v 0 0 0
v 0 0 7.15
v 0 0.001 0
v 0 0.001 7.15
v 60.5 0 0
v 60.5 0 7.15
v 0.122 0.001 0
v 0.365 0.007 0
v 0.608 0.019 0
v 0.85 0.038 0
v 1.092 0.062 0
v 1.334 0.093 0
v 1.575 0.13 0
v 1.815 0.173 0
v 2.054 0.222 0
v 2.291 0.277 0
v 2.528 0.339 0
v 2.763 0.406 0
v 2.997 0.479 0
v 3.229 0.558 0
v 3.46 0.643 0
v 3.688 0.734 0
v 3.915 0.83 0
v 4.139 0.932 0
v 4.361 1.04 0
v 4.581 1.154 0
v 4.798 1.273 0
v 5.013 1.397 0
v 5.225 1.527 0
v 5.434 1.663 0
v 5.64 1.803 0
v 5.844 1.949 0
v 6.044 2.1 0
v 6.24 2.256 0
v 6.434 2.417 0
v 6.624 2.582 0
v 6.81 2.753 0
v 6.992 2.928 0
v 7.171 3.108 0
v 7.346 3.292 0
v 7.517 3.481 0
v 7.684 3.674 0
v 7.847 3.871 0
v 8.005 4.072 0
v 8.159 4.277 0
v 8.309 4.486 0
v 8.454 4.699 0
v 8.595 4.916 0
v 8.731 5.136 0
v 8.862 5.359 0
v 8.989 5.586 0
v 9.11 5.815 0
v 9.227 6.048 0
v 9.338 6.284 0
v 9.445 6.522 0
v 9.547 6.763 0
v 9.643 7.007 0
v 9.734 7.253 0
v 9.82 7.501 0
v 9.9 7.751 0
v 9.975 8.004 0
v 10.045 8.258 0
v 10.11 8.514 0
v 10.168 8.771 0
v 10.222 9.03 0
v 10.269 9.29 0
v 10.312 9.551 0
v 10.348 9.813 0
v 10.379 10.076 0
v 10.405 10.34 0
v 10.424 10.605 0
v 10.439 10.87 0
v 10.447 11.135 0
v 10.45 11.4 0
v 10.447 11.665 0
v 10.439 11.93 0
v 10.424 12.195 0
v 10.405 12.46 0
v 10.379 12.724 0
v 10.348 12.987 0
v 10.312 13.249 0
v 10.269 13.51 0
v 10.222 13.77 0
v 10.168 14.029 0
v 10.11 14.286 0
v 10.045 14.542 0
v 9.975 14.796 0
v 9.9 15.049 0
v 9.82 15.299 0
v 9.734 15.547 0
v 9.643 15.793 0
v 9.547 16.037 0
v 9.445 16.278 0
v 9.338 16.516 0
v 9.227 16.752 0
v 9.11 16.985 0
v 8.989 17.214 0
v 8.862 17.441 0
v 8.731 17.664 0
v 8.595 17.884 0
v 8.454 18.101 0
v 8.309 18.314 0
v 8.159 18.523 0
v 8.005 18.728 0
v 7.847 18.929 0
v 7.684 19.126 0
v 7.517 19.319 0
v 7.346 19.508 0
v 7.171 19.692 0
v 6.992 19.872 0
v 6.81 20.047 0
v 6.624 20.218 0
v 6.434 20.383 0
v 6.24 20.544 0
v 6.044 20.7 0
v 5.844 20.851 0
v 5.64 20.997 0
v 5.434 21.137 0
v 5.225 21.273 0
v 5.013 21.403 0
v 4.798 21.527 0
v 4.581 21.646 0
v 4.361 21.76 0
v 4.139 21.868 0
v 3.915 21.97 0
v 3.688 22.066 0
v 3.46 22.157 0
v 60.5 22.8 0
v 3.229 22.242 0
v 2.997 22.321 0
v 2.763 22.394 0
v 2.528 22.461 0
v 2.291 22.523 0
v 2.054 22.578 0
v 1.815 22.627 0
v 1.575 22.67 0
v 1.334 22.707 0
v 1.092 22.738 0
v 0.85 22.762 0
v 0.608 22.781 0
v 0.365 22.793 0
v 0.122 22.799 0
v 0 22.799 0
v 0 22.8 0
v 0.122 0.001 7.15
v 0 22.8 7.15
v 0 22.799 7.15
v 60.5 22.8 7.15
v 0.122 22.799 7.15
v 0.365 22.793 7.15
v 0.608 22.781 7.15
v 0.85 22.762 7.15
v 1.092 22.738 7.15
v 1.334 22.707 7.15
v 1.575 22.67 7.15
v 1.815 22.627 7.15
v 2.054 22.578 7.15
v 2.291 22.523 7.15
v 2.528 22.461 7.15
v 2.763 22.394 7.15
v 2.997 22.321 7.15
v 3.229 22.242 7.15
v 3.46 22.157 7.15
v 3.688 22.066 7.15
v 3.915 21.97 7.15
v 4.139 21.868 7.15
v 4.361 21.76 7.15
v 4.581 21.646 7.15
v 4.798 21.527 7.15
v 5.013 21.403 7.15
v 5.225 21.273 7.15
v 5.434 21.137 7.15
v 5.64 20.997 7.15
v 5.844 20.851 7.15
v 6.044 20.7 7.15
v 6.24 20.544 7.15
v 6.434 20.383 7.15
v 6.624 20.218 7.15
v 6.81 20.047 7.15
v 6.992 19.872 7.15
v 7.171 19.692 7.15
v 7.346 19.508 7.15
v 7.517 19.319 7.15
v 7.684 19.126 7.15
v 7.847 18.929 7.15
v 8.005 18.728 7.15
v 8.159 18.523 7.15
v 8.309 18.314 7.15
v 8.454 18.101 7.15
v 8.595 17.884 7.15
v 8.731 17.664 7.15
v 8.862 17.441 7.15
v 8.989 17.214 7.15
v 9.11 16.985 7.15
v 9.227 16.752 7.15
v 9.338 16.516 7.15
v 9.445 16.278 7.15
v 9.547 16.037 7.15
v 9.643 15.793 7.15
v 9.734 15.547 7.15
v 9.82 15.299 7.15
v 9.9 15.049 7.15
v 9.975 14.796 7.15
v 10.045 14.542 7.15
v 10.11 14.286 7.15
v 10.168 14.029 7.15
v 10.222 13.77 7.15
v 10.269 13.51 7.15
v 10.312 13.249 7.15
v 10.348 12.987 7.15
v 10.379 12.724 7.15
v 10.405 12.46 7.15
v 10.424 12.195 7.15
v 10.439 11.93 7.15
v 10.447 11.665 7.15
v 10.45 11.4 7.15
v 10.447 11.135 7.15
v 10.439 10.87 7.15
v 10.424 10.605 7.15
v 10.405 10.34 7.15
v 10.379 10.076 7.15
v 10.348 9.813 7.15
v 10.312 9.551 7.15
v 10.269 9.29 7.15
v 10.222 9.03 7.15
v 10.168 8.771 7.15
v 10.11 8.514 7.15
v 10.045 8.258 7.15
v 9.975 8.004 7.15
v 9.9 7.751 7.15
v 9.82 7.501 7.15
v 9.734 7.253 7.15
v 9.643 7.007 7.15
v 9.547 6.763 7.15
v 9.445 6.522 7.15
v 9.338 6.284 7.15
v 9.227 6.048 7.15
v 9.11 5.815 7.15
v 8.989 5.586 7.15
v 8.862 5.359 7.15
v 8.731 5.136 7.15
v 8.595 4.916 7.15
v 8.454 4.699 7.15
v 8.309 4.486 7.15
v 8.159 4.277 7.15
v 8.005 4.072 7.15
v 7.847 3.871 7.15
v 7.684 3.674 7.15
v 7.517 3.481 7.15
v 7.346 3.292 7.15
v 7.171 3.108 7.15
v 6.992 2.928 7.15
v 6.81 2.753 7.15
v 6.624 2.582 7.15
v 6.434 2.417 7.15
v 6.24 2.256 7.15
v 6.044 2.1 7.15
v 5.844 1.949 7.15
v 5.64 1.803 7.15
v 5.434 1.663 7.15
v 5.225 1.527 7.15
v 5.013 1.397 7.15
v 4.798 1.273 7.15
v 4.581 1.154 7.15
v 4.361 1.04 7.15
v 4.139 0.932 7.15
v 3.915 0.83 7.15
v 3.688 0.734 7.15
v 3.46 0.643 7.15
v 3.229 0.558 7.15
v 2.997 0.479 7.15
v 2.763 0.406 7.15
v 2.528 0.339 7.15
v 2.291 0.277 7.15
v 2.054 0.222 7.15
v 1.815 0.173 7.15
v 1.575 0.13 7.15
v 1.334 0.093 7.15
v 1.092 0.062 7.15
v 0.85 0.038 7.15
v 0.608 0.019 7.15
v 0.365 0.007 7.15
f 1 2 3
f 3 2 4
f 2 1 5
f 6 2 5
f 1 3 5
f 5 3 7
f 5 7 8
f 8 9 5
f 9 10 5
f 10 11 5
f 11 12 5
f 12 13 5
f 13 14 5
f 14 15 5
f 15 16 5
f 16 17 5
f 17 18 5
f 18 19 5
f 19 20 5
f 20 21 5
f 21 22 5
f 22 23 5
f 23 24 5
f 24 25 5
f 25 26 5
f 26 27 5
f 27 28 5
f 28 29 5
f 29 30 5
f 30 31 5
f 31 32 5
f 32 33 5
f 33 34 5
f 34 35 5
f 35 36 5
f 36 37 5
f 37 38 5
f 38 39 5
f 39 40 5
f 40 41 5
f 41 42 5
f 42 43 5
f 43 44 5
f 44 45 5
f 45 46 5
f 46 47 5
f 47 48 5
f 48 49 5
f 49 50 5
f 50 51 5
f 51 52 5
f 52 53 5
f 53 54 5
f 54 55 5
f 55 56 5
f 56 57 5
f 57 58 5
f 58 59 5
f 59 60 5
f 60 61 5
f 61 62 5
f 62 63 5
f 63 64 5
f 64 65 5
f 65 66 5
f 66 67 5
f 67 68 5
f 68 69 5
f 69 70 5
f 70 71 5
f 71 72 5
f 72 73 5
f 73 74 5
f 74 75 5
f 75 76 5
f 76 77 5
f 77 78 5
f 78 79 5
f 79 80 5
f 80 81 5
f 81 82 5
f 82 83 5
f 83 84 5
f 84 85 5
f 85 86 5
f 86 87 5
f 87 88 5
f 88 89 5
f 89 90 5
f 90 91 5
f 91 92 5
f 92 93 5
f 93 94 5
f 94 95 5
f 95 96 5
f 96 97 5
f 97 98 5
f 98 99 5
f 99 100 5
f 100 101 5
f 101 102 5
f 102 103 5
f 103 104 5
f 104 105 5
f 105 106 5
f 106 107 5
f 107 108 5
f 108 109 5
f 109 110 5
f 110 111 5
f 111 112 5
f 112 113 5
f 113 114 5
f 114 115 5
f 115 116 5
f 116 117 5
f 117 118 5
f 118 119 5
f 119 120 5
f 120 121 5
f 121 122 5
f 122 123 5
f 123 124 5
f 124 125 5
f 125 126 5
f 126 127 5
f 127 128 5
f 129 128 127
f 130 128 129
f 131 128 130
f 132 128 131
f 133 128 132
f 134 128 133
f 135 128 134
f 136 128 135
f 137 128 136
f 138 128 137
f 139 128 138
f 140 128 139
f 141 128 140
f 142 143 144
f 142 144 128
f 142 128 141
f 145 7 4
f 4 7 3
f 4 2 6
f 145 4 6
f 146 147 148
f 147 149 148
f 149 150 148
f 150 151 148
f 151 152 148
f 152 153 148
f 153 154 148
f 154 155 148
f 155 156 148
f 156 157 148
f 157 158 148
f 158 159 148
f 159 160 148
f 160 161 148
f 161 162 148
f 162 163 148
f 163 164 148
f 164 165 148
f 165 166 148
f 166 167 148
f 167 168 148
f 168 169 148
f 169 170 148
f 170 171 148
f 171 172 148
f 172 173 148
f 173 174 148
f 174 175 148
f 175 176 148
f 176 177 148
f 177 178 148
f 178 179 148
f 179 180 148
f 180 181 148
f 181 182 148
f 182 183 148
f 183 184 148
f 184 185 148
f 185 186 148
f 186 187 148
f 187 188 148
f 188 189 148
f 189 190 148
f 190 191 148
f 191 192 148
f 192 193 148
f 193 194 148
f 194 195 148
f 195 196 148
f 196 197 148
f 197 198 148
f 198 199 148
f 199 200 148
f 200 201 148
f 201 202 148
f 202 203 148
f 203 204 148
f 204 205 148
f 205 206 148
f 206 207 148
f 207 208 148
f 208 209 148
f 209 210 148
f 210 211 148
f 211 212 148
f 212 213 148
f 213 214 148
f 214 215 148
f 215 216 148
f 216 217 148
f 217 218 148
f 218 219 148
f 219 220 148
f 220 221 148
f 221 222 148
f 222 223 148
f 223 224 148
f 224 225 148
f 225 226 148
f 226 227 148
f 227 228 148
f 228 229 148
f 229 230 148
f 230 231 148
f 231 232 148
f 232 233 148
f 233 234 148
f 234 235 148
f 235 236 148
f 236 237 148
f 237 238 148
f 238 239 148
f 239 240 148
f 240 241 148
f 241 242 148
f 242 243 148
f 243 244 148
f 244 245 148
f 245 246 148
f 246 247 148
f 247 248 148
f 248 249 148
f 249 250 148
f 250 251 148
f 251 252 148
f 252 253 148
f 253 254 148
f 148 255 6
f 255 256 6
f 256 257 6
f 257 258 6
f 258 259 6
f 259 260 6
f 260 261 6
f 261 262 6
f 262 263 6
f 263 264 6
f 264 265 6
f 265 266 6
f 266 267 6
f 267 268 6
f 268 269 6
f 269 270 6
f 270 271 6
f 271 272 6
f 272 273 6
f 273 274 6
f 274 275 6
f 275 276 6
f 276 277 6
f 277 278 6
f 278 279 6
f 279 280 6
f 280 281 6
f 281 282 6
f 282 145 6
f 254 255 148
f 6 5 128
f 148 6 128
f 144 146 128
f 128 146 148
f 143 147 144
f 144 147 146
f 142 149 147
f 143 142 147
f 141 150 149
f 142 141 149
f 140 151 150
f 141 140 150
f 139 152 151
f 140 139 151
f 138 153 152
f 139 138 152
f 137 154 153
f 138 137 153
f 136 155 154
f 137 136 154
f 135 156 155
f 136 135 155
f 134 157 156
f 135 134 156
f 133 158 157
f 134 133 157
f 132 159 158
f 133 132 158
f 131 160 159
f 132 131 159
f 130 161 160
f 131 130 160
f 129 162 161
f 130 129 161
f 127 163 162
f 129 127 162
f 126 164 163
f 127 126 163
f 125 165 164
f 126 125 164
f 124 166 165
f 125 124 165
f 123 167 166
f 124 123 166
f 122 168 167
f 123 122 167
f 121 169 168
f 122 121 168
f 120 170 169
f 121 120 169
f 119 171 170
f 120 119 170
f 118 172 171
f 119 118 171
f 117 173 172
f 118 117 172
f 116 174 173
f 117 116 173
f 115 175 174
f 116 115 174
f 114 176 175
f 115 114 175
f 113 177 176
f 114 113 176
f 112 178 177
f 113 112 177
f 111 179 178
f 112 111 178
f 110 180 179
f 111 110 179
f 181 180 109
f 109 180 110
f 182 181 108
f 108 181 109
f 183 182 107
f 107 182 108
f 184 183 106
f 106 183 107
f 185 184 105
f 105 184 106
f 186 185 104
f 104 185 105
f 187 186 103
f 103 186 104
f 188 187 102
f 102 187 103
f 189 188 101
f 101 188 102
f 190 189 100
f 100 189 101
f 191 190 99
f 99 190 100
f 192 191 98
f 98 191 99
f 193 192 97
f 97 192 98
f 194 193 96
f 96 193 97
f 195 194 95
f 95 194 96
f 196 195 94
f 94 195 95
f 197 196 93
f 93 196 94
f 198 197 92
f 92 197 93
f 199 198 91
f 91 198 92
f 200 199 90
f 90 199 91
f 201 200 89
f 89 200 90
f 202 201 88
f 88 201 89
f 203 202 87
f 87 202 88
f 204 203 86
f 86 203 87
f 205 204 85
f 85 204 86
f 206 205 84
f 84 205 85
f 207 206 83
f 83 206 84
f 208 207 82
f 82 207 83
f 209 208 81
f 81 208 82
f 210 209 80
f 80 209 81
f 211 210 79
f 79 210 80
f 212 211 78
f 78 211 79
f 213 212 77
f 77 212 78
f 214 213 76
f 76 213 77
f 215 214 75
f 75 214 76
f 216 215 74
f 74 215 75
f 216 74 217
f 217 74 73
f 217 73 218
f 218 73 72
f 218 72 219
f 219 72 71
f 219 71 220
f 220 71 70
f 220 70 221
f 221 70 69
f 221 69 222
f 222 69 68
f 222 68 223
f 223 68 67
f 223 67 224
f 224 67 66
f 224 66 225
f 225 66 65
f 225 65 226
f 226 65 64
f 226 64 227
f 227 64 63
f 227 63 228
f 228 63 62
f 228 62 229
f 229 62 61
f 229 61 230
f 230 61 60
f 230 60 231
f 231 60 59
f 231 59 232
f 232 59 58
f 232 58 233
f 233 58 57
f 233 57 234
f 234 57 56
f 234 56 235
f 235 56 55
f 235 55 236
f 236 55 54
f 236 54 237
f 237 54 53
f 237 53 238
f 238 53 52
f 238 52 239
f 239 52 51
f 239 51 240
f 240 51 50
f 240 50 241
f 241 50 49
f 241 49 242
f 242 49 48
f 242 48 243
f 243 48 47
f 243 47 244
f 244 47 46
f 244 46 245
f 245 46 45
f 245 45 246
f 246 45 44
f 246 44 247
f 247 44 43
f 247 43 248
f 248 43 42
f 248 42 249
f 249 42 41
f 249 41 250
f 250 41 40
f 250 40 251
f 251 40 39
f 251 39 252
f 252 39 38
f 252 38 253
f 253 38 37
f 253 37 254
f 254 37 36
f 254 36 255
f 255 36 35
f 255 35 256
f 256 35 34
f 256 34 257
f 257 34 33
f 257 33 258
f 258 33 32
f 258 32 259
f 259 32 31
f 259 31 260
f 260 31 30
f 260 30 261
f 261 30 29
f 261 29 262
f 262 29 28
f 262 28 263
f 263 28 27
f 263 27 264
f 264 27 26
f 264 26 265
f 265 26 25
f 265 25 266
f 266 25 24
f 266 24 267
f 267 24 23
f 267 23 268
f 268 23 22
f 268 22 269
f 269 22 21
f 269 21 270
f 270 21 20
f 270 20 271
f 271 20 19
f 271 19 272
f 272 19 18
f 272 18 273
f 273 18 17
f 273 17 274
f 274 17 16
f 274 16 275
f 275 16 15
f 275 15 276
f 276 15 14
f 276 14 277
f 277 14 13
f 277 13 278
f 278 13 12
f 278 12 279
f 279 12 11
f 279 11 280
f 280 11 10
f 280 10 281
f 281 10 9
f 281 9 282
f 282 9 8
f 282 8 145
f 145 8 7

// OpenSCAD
x=55;
y=19;
z=5.5; // по этой переменной можно менять толщину всей модели
//Цитозин
$fn=270;
scale  ([1.1,1.2,1.3]) {
difference (){
color("MediumPurple") translate ([0,0,0]) cube ([x,y,z]);
color("Red") translate ([0,y/2,0]) cylinder (z,y/2,y/2);
}
 }
